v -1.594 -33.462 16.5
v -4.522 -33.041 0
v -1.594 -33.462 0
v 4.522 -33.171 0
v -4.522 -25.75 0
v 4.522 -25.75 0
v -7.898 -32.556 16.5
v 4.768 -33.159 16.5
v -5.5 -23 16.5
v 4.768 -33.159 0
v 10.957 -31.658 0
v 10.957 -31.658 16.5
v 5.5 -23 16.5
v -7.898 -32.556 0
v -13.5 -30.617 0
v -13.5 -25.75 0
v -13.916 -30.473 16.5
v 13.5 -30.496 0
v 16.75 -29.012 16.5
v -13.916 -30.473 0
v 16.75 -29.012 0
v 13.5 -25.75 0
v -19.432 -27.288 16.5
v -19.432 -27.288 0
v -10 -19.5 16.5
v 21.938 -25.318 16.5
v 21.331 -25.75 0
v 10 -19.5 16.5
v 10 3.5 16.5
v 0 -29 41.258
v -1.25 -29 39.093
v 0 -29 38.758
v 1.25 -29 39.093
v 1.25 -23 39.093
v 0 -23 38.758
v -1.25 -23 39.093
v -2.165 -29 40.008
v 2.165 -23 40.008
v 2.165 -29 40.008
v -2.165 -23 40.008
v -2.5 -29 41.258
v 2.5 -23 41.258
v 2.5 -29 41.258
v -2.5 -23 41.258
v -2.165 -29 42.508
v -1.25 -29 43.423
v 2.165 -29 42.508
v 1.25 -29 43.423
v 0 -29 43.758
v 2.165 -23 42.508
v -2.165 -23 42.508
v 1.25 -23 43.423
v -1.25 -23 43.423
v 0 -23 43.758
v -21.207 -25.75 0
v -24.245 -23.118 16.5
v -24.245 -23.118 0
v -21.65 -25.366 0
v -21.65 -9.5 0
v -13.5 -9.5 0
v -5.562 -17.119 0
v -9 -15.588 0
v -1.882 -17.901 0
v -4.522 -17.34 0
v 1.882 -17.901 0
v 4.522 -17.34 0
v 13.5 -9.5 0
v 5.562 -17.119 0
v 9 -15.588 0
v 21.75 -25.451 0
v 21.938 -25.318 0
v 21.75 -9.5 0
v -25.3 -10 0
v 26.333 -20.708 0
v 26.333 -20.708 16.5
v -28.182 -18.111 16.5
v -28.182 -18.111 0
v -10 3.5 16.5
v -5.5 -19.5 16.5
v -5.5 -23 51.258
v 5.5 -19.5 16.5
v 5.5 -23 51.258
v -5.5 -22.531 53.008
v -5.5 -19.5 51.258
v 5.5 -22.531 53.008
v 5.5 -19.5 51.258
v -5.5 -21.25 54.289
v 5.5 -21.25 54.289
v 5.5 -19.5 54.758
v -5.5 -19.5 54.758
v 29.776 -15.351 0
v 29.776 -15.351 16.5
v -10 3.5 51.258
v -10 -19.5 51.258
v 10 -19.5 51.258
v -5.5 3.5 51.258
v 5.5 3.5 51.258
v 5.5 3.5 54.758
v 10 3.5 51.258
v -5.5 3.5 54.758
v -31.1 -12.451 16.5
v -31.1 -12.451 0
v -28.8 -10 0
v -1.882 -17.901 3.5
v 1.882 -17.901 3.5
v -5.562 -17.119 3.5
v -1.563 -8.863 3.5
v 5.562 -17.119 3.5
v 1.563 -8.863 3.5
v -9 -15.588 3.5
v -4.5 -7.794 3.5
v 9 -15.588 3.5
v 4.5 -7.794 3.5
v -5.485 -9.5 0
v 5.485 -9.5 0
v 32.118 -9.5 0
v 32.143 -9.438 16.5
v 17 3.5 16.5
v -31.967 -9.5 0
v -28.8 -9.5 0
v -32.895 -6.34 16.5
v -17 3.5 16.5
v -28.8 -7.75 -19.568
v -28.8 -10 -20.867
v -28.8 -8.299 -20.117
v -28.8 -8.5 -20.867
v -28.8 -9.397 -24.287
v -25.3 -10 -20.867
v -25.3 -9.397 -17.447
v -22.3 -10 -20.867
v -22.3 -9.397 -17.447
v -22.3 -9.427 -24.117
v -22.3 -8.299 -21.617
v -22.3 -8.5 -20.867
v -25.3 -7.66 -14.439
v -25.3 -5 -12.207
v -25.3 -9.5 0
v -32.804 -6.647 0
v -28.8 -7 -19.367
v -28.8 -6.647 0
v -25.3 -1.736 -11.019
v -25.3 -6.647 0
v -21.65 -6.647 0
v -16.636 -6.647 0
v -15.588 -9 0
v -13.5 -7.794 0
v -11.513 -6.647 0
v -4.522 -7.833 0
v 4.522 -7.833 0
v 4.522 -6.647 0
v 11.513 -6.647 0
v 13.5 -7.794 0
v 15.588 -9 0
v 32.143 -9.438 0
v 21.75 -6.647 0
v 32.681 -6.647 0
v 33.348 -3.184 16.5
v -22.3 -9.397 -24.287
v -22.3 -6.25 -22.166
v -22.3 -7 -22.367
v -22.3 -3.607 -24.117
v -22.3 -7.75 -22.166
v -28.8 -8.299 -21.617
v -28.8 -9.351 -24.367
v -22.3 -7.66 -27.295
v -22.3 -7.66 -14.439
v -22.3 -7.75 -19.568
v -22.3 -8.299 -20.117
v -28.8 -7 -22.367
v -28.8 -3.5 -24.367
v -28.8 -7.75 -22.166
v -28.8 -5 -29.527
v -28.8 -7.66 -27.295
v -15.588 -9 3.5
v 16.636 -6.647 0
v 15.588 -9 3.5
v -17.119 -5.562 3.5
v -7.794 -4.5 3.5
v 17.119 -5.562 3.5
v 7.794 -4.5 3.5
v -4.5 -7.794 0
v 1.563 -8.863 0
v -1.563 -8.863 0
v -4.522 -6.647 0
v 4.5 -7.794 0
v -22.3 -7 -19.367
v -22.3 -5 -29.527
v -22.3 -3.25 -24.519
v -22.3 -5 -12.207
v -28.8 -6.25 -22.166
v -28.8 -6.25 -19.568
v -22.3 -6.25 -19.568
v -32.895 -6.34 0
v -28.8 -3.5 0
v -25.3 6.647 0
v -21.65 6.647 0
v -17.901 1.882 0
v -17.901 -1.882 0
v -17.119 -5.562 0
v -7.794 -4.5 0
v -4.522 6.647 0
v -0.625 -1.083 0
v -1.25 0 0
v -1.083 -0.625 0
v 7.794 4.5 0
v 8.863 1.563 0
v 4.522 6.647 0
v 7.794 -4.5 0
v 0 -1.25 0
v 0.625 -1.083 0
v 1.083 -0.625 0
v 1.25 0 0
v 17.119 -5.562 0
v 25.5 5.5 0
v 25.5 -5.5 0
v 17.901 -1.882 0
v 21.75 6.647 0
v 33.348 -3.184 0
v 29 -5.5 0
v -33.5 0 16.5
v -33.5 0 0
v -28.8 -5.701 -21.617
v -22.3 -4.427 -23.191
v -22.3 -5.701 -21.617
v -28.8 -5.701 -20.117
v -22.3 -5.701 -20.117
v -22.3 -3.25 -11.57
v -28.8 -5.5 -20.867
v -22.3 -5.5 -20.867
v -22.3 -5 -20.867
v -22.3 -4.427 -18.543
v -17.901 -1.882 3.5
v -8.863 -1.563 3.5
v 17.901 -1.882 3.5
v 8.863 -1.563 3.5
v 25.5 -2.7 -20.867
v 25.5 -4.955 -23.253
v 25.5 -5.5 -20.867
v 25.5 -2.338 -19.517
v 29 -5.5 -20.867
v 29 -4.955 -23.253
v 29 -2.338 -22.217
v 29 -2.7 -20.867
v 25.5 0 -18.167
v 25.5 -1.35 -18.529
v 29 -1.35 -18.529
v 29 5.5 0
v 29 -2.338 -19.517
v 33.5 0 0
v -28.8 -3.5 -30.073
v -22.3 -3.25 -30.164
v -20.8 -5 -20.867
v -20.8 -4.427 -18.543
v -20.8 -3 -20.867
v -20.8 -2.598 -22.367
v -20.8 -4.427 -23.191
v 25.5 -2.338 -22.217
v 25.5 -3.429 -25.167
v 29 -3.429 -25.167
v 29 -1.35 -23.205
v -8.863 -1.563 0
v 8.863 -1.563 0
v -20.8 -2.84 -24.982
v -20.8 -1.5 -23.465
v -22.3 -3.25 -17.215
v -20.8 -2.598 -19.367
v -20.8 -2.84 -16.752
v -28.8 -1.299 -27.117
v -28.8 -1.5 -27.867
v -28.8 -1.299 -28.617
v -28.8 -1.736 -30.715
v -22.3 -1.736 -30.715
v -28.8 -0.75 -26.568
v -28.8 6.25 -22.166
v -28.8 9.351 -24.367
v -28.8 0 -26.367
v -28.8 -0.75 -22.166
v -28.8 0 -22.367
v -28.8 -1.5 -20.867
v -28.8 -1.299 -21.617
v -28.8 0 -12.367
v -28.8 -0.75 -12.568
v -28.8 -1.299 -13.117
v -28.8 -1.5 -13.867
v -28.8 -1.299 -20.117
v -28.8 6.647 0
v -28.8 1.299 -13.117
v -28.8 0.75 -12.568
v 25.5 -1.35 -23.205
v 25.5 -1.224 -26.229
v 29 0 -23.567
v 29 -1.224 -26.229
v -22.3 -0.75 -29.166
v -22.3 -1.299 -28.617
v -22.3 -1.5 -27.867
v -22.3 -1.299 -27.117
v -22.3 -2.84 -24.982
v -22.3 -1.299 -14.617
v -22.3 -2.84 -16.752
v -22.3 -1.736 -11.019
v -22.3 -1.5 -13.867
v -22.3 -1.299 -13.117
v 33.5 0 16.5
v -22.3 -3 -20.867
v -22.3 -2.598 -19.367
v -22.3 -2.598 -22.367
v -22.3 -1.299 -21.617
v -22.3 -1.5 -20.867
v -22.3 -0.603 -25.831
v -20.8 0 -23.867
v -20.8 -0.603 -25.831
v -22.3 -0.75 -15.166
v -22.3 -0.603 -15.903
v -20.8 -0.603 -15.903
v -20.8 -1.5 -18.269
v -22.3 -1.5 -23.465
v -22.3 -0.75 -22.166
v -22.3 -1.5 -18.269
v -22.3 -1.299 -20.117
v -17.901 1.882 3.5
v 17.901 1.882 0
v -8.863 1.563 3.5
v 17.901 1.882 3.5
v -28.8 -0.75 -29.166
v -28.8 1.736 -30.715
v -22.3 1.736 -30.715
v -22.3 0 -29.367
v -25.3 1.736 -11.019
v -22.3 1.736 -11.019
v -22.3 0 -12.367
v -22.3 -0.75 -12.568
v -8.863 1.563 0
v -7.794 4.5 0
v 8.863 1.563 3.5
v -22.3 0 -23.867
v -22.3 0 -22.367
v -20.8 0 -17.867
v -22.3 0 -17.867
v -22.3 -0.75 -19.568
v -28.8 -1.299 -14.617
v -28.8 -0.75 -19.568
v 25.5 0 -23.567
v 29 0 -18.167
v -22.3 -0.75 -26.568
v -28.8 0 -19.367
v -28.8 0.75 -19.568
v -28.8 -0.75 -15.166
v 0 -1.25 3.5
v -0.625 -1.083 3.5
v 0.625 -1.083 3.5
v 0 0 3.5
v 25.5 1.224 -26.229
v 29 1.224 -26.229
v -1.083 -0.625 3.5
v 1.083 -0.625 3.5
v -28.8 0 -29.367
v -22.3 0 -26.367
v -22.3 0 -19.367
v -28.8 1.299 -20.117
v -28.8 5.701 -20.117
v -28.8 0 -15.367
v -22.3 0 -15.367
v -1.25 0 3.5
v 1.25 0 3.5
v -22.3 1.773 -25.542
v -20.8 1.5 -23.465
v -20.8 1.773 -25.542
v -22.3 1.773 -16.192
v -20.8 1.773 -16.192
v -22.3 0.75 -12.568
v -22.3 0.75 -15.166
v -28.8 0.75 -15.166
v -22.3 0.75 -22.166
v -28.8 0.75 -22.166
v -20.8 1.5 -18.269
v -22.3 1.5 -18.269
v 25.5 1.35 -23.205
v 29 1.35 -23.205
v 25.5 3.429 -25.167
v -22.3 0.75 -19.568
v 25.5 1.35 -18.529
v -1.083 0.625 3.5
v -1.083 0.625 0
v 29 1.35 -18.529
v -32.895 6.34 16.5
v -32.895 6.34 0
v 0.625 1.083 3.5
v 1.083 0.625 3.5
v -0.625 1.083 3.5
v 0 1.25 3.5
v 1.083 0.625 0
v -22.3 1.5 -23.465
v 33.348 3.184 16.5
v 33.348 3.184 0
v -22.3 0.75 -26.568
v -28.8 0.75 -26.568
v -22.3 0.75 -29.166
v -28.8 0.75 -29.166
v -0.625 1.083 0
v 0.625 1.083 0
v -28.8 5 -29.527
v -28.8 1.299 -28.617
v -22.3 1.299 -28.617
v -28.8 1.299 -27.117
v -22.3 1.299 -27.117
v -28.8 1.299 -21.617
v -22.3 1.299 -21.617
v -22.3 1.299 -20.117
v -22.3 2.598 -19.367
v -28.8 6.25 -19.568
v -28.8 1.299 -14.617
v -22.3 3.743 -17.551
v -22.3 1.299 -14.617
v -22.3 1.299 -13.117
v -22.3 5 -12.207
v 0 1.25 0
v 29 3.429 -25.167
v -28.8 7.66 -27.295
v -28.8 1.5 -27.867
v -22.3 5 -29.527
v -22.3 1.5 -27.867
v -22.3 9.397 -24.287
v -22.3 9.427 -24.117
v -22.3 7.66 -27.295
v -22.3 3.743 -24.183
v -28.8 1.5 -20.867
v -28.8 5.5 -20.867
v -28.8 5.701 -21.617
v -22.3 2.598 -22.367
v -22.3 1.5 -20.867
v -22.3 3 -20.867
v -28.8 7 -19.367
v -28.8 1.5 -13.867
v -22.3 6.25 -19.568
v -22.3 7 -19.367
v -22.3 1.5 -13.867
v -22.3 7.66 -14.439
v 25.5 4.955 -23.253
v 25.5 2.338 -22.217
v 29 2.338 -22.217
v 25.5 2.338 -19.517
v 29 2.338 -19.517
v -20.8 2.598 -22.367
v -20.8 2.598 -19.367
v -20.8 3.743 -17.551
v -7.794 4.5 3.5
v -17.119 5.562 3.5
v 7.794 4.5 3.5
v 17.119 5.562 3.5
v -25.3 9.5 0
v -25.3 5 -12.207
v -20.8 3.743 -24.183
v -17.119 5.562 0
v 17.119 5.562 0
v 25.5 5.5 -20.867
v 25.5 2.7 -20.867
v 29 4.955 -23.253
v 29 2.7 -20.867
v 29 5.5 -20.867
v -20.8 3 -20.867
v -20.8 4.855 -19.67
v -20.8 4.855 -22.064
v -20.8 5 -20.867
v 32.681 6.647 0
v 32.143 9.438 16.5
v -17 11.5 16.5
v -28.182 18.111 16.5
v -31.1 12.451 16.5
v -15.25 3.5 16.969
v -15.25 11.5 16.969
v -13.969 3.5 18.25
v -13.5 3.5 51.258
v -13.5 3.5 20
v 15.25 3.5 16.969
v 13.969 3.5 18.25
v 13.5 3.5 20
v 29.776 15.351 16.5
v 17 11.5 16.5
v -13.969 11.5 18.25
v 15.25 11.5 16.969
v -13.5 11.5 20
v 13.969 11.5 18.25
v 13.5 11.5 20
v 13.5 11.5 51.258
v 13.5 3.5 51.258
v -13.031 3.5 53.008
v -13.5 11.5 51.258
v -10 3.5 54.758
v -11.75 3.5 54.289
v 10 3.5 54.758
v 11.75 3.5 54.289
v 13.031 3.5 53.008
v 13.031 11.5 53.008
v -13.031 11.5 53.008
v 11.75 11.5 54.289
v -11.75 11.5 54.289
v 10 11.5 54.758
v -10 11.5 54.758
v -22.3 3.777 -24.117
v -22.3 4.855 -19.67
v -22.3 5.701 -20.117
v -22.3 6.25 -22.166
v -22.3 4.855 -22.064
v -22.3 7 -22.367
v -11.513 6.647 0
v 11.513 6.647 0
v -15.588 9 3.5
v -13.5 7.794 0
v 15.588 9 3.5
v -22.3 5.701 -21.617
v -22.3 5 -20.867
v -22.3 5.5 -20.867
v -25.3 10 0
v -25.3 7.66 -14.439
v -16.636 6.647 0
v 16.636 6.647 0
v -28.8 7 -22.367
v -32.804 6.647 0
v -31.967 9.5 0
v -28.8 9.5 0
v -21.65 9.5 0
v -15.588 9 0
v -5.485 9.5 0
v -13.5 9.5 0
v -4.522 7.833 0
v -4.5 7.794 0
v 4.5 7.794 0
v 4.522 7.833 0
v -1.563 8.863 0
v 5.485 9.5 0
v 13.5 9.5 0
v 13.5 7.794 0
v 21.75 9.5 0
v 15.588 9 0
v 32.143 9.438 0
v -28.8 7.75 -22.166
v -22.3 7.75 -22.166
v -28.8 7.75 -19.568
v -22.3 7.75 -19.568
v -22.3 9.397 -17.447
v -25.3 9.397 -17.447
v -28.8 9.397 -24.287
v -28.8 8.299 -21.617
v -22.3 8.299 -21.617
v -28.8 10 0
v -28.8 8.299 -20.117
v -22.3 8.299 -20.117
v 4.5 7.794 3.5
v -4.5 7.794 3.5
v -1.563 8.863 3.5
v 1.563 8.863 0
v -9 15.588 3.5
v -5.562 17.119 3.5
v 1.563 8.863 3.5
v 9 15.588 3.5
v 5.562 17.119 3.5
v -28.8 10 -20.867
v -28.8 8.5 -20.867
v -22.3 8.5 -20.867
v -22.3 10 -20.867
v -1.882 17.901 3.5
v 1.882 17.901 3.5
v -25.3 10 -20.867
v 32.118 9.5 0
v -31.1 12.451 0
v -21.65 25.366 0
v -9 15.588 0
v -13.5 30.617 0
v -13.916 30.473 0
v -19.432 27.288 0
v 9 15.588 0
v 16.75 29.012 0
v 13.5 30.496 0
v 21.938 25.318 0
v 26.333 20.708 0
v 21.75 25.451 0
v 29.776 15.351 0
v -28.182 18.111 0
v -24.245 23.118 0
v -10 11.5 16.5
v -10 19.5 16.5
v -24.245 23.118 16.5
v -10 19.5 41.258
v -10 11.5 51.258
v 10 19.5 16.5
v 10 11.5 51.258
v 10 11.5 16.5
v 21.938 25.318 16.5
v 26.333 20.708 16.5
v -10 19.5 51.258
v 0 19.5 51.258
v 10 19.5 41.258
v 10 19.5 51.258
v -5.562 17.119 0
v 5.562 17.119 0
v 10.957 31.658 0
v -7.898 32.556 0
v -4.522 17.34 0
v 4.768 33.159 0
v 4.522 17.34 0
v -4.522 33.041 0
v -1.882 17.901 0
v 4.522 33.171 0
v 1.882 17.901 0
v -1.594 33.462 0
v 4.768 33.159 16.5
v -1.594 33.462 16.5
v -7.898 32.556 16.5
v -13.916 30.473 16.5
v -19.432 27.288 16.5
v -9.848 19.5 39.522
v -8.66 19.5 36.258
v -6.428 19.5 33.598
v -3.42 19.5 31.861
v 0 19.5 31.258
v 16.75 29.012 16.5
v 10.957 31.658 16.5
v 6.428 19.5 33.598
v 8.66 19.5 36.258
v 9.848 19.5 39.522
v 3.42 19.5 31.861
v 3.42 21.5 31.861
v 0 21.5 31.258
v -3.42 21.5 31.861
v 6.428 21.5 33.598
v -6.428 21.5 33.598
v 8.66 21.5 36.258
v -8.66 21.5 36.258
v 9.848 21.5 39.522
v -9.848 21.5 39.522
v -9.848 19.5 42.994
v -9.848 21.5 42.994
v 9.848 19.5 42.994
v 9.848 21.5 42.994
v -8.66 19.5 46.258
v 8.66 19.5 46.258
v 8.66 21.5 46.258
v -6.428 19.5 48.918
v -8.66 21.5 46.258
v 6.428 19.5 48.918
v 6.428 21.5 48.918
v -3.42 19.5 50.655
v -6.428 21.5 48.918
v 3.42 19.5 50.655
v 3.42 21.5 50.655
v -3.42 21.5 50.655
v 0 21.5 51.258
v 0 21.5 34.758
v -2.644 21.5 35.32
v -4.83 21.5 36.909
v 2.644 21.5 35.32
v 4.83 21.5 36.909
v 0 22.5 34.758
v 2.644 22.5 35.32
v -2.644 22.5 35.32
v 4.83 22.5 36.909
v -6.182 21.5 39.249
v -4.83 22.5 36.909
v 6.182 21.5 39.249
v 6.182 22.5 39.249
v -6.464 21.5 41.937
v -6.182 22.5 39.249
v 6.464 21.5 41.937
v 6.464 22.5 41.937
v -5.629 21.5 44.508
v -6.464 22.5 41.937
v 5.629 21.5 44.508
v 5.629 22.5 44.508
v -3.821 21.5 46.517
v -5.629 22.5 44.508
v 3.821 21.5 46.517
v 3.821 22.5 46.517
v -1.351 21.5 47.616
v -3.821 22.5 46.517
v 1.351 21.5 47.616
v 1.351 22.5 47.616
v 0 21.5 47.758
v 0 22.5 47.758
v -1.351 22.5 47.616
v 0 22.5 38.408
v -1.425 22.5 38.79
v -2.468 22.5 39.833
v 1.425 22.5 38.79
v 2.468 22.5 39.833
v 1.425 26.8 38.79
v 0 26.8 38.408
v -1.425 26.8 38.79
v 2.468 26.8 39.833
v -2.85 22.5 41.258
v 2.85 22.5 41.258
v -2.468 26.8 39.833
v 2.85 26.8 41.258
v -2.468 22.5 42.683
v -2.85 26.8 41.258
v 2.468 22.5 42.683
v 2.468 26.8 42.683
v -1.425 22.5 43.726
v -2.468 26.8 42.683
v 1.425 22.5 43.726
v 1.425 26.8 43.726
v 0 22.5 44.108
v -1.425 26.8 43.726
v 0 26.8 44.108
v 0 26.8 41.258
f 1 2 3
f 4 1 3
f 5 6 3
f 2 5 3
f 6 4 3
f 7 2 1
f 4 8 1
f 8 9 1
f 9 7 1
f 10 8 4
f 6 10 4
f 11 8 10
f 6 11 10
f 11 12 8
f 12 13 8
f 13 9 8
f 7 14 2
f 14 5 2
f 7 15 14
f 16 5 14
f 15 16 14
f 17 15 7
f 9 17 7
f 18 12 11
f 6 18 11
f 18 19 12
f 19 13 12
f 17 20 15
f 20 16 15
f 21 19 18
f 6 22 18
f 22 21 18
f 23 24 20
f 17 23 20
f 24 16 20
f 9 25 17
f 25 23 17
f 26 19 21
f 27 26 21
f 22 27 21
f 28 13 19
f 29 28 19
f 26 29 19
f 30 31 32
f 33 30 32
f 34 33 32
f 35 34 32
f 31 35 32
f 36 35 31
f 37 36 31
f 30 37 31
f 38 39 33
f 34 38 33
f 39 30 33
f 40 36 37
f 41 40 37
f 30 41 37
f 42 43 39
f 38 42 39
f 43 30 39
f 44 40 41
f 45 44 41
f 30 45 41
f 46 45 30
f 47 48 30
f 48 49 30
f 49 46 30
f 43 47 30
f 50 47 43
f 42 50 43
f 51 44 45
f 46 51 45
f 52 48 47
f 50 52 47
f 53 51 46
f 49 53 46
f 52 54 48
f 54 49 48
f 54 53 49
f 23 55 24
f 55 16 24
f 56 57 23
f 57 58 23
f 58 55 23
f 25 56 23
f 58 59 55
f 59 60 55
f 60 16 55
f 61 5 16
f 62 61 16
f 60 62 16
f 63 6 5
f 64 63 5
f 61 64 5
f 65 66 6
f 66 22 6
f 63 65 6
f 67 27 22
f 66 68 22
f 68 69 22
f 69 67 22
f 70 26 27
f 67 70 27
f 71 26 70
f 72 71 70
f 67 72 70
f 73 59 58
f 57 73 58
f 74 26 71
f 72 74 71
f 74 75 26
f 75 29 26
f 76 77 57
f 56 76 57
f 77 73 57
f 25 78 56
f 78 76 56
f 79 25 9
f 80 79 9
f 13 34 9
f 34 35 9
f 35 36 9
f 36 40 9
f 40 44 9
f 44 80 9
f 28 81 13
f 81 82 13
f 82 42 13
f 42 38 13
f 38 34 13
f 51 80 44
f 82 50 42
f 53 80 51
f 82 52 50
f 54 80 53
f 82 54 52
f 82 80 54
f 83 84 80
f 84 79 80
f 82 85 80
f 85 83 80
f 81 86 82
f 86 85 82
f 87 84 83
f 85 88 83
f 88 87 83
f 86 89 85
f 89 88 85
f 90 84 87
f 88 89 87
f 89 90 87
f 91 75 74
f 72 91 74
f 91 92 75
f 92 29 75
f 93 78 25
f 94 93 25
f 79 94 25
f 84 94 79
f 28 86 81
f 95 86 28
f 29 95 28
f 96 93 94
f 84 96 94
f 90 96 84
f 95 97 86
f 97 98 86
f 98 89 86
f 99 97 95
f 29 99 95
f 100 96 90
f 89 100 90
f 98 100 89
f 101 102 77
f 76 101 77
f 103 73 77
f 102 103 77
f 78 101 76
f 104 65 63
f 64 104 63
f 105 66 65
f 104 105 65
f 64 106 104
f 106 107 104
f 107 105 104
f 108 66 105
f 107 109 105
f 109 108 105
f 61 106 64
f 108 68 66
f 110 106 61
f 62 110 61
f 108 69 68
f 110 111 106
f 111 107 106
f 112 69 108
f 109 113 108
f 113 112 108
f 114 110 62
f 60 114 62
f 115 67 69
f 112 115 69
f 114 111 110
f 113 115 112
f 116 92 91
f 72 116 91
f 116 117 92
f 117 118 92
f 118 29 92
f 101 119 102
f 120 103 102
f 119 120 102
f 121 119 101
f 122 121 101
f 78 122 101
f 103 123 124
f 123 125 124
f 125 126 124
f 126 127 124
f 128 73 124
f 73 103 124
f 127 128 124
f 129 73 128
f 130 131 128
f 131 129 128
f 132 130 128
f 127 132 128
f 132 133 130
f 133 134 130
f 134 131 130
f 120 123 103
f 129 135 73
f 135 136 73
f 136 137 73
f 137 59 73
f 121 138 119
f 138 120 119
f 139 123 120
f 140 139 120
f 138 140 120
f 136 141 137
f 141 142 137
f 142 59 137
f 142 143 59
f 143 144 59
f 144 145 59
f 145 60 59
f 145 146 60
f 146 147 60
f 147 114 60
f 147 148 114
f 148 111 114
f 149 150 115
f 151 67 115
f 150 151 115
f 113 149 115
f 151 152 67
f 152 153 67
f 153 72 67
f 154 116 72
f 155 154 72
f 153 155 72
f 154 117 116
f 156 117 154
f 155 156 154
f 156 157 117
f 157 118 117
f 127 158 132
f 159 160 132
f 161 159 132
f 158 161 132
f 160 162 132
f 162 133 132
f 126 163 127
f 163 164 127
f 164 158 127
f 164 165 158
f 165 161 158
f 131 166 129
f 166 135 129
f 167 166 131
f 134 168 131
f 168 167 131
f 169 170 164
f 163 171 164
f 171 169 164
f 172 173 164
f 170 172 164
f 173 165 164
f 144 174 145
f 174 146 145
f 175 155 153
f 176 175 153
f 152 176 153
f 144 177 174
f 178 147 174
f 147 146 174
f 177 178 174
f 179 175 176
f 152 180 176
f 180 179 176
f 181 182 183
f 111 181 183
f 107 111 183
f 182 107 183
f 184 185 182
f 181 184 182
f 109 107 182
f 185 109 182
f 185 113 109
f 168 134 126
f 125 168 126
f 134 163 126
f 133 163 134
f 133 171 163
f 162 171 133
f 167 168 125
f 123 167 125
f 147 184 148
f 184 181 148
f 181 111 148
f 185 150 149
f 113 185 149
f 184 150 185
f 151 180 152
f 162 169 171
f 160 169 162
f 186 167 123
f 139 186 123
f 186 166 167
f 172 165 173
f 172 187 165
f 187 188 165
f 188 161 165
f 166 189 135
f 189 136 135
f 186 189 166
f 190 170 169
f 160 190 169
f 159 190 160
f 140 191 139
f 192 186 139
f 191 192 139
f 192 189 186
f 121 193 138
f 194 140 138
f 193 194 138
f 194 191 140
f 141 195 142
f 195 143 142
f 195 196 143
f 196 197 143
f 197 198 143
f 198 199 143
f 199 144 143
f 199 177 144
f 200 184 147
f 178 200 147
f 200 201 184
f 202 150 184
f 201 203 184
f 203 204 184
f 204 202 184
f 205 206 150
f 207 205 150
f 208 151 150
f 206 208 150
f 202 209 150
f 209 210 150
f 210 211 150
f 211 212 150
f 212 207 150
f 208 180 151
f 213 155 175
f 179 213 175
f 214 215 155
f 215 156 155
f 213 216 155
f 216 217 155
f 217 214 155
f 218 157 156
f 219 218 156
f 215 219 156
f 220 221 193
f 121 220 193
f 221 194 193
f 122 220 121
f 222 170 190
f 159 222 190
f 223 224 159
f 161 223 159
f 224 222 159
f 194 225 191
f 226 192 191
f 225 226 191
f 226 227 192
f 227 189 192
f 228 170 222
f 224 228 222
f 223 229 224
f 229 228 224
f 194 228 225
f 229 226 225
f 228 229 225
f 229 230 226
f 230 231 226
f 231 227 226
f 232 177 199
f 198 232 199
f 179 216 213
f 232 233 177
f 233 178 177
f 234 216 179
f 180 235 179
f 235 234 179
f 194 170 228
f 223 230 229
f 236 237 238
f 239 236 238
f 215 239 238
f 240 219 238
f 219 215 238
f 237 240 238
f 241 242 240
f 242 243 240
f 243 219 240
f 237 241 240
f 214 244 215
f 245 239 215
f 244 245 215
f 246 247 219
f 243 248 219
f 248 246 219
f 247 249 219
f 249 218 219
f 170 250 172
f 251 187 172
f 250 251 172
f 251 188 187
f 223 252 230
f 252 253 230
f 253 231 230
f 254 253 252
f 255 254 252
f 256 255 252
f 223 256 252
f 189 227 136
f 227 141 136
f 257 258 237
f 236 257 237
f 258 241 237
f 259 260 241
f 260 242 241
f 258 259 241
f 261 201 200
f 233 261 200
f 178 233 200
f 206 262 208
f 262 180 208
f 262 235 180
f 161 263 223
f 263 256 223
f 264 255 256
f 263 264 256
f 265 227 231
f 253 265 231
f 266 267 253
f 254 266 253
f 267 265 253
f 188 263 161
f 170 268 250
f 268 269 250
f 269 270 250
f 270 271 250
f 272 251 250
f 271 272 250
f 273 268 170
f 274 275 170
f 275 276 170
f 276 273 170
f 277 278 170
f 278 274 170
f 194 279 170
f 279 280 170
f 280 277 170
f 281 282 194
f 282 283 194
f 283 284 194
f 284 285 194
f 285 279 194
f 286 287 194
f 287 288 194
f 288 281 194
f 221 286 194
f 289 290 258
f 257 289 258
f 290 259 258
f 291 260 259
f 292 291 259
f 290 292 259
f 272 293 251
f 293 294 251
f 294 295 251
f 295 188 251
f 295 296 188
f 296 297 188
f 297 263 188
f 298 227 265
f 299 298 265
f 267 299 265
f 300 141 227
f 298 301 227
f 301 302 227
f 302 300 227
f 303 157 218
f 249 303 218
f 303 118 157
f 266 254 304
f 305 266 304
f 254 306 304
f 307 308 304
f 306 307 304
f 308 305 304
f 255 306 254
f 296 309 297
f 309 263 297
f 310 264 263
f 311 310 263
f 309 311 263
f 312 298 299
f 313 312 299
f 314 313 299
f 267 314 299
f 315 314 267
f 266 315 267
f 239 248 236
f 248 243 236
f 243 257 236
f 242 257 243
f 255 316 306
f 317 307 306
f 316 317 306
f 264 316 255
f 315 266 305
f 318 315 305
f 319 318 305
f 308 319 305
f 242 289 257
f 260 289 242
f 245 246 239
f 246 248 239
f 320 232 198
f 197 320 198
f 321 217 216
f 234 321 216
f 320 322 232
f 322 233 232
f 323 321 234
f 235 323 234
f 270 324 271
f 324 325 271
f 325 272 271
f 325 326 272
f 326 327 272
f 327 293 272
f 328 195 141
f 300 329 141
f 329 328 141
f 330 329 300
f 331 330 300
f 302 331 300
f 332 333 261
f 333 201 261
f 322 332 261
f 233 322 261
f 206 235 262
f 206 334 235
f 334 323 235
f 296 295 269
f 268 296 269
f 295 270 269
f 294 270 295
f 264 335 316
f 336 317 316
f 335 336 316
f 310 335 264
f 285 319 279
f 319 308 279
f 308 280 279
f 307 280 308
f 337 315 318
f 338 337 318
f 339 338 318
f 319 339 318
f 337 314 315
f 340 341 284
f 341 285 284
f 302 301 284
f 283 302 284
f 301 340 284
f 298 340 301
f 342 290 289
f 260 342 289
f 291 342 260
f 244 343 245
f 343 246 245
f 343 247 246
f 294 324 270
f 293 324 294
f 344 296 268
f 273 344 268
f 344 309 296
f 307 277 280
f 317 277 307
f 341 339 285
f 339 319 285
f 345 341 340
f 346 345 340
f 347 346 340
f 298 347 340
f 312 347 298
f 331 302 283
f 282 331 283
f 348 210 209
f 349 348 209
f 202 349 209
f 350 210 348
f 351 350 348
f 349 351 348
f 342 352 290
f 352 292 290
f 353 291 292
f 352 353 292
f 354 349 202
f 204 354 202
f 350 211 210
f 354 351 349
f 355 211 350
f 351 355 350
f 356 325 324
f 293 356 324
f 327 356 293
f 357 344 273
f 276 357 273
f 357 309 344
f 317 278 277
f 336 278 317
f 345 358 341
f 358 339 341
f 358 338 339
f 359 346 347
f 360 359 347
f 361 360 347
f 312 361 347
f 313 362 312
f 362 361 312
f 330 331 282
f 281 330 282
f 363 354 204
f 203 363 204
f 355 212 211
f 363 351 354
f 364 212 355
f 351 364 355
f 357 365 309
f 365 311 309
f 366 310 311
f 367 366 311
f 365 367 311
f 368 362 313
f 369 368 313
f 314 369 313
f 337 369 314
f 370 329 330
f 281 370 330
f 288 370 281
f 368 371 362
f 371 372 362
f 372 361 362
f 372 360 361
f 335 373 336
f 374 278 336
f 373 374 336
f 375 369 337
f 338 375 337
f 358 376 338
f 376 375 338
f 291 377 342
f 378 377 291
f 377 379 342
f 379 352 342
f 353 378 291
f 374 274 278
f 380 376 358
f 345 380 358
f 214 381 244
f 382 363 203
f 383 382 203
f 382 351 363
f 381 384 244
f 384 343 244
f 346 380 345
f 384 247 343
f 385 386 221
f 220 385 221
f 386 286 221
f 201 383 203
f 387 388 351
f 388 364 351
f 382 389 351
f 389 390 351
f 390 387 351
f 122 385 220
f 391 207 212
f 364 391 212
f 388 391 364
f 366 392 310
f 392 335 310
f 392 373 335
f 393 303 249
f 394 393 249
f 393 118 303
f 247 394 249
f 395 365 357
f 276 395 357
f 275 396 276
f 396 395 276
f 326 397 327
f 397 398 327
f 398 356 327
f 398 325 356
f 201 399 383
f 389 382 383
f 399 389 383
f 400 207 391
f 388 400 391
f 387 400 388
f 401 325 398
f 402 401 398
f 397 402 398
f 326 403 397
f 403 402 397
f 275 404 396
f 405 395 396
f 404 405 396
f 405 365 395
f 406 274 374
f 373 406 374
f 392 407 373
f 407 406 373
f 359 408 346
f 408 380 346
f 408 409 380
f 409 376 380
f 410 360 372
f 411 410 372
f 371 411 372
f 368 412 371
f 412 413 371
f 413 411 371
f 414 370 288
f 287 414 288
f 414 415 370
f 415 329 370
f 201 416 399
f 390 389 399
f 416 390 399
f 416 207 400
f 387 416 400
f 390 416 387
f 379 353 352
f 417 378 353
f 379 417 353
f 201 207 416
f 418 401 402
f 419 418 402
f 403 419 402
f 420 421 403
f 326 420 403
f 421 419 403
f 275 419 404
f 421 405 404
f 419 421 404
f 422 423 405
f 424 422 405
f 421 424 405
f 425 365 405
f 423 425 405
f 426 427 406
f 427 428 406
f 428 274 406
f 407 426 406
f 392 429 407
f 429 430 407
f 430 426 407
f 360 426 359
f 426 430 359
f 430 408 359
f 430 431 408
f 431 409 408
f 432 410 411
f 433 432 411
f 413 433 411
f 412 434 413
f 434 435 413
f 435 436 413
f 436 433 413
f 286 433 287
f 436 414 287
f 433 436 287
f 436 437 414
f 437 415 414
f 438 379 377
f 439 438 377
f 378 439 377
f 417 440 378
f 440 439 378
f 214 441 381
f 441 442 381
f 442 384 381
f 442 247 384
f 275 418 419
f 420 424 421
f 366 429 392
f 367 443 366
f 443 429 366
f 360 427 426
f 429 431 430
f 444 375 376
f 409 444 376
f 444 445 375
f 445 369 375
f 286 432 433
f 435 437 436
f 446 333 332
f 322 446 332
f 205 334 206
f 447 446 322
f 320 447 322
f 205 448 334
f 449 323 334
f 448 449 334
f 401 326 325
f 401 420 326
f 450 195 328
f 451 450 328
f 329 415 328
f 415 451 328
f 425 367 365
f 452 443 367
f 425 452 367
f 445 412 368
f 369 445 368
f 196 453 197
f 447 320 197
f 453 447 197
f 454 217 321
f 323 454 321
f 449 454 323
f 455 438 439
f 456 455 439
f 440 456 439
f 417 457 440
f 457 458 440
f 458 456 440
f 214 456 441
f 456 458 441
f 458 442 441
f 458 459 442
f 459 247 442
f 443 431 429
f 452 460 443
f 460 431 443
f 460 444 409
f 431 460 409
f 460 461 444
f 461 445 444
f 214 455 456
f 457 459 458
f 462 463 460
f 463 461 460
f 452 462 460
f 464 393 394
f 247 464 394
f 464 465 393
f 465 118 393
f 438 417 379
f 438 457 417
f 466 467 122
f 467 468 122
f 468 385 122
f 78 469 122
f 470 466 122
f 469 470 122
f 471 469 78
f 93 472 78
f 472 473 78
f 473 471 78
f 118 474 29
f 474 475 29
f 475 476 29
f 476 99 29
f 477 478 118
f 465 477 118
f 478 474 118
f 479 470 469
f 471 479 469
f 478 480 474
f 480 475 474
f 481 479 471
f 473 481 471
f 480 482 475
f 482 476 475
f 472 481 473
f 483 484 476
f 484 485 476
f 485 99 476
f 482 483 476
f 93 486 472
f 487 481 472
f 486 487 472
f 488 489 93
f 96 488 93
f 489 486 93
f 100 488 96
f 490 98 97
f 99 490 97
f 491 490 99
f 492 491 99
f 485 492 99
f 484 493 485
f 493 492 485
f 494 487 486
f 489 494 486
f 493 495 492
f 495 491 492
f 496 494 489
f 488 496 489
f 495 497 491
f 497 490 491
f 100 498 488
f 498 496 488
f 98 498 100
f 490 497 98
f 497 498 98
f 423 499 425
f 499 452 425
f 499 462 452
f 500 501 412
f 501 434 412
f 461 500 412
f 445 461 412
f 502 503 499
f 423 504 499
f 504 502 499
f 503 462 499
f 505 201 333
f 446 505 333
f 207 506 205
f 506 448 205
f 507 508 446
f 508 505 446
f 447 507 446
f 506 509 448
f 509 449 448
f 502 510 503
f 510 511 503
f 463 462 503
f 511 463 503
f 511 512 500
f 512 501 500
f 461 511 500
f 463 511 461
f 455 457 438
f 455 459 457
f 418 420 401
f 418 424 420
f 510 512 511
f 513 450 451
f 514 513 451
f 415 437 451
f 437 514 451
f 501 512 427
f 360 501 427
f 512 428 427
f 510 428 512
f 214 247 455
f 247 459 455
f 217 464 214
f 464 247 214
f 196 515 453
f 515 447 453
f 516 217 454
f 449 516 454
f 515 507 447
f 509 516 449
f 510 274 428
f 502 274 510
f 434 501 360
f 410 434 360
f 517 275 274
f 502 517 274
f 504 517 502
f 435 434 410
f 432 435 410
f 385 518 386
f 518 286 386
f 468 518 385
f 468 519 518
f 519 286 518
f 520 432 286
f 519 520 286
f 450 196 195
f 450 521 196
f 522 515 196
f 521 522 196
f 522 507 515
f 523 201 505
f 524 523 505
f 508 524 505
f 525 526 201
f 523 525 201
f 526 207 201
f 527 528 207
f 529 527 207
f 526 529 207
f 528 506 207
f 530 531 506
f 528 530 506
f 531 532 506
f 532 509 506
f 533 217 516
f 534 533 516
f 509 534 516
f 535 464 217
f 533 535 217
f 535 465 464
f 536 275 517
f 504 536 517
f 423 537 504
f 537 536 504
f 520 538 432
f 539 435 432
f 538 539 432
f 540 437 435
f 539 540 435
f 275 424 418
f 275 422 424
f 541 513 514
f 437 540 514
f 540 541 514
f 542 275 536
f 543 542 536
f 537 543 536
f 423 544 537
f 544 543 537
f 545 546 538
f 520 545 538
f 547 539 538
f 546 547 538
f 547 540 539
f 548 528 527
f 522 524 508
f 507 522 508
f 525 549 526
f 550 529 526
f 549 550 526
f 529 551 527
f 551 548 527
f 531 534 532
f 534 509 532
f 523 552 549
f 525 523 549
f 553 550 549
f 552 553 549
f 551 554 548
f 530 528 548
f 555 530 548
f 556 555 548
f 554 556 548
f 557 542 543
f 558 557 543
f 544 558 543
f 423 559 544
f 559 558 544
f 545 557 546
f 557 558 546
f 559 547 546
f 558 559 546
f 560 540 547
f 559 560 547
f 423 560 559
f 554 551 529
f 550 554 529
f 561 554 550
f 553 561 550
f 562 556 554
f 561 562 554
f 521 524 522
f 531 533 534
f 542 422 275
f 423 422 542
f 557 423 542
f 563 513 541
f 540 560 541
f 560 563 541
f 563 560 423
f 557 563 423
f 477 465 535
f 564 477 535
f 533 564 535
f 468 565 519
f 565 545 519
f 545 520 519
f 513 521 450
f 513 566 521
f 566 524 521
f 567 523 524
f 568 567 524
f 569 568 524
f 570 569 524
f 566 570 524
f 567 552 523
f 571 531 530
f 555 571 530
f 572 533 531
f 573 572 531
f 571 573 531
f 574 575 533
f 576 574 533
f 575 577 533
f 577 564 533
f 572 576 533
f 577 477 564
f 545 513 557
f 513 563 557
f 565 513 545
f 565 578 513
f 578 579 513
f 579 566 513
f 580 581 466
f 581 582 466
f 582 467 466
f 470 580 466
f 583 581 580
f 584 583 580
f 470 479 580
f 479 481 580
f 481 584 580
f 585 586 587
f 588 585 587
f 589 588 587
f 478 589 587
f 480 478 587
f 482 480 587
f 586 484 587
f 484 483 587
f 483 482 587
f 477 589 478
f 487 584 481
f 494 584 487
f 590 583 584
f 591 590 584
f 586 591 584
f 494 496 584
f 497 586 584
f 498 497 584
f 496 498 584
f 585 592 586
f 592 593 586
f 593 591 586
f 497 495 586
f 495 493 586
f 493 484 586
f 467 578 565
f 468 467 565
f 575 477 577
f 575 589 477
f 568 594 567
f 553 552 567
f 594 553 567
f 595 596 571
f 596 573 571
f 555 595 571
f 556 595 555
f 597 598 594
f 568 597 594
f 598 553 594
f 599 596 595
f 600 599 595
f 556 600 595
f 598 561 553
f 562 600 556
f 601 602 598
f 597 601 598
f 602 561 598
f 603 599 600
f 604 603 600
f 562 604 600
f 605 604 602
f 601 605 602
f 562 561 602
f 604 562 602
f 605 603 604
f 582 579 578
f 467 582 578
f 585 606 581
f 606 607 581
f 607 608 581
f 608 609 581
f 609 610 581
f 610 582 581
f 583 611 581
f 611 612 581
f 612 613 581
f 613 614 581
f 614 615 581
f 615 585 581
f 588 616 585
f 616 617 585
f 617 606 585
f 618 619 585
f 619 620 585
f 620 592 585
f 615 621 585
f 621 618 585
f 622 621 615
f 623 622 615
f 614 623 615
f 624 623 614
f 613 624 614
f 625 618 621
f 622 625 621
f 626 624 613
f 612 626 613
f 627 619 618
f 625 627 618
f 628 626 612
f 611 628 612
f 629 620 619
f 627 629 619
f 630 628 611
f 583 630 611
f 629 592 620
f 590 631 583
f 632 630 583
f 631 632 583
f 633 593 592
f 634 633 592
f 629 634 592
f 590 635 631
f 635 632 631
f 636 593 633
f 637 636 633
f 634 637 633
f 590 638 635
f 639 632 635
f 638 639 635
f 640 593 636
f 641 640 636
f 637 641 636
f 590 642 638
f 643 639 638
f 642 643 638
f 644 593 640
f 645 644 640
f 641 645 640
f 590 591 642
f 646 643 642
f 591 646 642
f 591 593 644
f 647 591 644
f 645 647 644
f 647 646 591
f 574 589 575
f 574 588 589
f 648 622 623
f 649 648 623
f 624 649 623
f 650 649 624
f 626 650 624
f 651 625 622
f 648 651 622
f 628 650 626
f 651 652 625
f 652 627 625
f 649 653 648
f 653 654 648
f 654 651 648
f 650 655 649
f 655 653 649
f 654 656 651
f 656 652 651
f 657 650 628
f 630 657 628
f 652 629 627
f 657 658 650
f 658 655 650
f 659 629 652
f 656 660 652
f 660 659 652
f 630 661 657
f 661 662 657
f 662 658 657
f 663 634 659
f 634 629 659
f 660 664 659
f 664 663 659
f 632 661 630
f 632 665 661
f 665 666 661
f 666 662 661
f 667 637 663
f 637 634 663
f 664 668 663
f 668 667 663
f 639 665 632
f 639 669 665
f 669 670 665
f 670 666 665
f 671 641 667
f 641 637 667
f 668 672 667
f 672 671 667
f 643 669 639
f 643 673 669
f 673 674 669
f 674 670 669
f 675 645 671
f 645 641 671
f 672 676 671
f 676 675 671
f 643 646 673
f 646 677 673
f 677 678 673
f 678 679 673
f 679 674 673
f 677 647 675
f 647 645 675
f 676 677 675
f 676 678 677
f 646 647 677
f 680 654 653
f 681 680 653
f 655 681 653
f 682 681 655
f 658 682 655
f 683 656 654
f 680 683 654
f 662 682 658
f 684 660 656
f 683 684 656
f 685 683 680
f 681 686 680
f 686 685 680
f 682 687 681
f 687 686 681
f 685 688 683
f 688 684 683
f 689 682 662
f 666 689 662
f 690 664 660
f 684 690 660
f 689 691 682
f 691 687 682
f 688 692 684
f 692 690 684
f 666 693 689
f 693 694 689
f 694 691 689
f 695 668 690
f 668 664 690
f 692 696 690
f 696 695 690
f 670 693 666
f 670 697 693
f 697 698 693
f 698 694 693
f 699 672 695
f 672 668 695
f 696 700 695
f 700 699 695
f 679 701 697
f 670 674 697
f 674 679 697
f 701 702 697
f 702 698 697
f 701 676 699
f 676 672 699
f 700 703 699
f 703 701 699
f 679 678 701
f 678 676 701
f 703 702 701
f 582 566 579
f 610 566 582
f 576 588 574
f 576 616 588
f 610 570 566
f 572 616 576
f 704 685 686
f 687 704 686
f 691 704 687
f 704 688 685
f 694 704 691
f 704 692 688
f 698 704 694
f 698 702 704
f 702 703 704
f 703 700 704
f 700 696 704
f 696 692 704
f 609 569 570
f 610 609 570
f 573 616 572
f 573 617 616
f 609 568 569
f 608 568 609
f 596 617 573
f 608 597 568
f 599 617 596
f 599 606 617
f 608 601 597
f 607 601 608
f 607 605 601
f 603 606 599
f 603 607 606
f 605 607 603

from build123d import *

# Parameters (mm, degrees)
SKETCH1_R            = 33.5
BOSS_EXTRUDE3_DEPTH  = 16.5
SKETCH2_W            = 20
SKETCH2_H            = 39
BOSS_EXTRUDE4_DEPTH  = 34.758
SKETCH3_R            = 10
SKETCH3_R_2          = 6.5
BOSS_EXTRUDE5_DEPTH  = 2
SKETCH3_3_R          = 6.5
BOSS_EXTRUDE6_DEPTH  = 3
SKETCH3_4_R          = 2.85
BOSS_EXTRUDE7_DEPTH  = 7.3
SKETCH5_W            = 11
SKETCH5_H            = 3.5
SKETCH5_W_2          = 3.5
SKETCH5_H_2          = 8
BOSS_EXTRUDE8_DEPTH  = 34.758
SKETCH6_W            = 11
SKETCH6_H            = 8
BOSS_EXTRUDE9_DEPTH  = 3.5
SKETCH7_R            = 2.5
BOSS_EXTRUDE10_DEPTH = 6
FILLET1_R            = 3.5
FILLET2_R            = 3.5
FILLET3_R            = 3.5
FILLET4_R            = 3.5
SKETCH9_W            = 3.5
SKETCH9_H            = 20
BOSS_EXTRUDE11_DEPTH = 30.867
SKETCH9_3_W          = 3.5
SKETCH9_3_H          = 11
BOSS_EXTRUDE12_DEPTH = 27
CUT_EXTRUDE1_DEPTH   = 88.052447203
BOSS_EXTRUDE13_START = 3
SKETCH10_3_R         = 10
BOSS_EXTRUDE13_DEPTH = 3
SKETCH10_4_R         = 5
SKETCH10_4_R_2       = 3
BOSS_EXTRUDE14_DEPTH = 4.5
CUT_EXTRUDE4_START   = -18.5
SKETCH10_7_R         = 1.5
CUT_EXTRUDE4_DEPTH   = 34.5
CIRPATTERN3_COUNT    = 4
SKETCH11_R           = 1.5
CUT_EXTRUDE6_DEPTH   = 86.054856205
SKETCH13_R           = 2.7
CUT_EXTRUDE10_DEPTH  = 15.5
CUT_EXTRUDE11_DEPTH  = 3.5
CIRPATTERN4_COUNT    = 4
SKETCH14_3_R         = 1.25
CUT_EXTRUDE12_DEPTH  = 3.5


with BuildPart() as part:
    # Sketch1 → Boss-Extrude3 (new body)
    with BuildSketch(Plane.XY):
        Circle(SKETCH1_R)
    extrude(amount=BOSS_EXTRUDE3_DEPTH)

    # Sketch2 → Boss-Extrude4 (add)
    with BuildSketch(Plane.XY.offset(16.5)):
        Rectangle(SKETCH2_W, SKETCH2_H)
    extrude(amount=BOSS_EXTRUDE4_DEPTH)

    # Sketch3 → Boss-Extrude5 (add)
    with BuildSketch(Plane(origin=(0, 19.5, 0), x_dir=(1, 0, 0), z_dir=(0, 1, 0))):
        with Locations(Location((0, -41.258, 0), (0, 0, 270))):
            Circle(SKETCH3_R)
        with Locations(Location((0, -41.258, 0), (0, 0, 270))):
            Circle(SKETCH3_R_2, mode=Mode.SUBTRACT)
    extrude(amount=BOSS_EXTRUDE5_DEPTH)

    # Sketch3<3> → Boss-Extrude6 (add)
    with BuildSketch(Plane(origin=(0, 19.5, 0), x_dir=(1, 0, 0), z_dir=(0, 1, 0))):
        with Locations(Location((0, -41.258, 0), (0, 0, 270))):
            Circle(SKETCH3_3_R)
    extrude(amount=BOSS_EXTRUDE6_DEPTH)

    # Sketch3<4> → Boss-Extrude7 (add)
    with BuildSketch(Plane(origin=(0, 19.5, 0), x_dir=(1, 0, 0), z_dir=(0, 1, 0))):
        with Locations(Location((0, -41.258, 0), (0, 0, 270))):
            Circle(SKETCH3_4_R)
    extrude(amount=BOSS_EXTRUDE7_DEPTH)

    # Sketch5 → Boss-Extrude8 (add)
    with BuildSketch(Plane.XY.offset(51.258)):
        with Locations((0, -21.25)):
            Rectangle(SKETCH5_W, SKETCH5_H)
        with Locations((11.75, 7.5)):
            Rectangle(SKETCH5_W_2, SKETCH5_H_2)
        with Locations((-11.75, 7.5)):
            Rectangle(SKETCH5_W_2, SKETCH5_H_2)
    extrude(amount=-BOSS_EXTRUDE8_DEPTH)

    # Sketch6 → Boss-Extrude9 (add)
    with BuildSketch(Plane.XY.offset(51.258)):
        with Locations((0, 7.5)):
            Rectangle(SKETCH6_W, SKETCH6_H)
        Polygon((10, 11.5), (5.5, 11.5), (5.5, 3.5), (10, 3.5), (13.5, 3.5), (13.5, 11.5), align=None)
        Polygon((5.5, 3.5), (-5.5, 3.5), (-5.5, -19.5), (-5.5, -23), (5.5, -23), (5.5, -19.5), align=None)
        Polygon((-10, 11.5), (-13.5, 11.5), (-13.5, 3.5), (-10, 3.5), (-5.5, 3.5), (-5.5, 11.5), align=None)
    extrude(amount=BOSS_EXTRUDE9_DEPTH)

    # Sketch7 → Boss-Extrude10 (add)
    with BuildSketch(Plane.XZ.offset(23)):
        with Locations(Location((0, 41.258, 0), (0, 0, 270))):
            Circle(SKETCH7_R)
    extrude(amount=BOSS_EXTRUDE10_DEPTH)

    # Fillet1
    fillet1_edges = [part.edges().sort_by_distance(p)[0] for p in [
        (-13.5, 7.5, 54.758),
        (13.5, 7.5, 54.758),
    ]]
    fillet(fillet1_edges, radius=FILLET1_R)

    # Fillet2
    fillet2_edges = [part.edges().sort_by_distance(p)[0] for p in [
        (0, -23, 54.758),
    ]]
    fillet(fillet2_edges, radius=FILLET2_R)

    # Fillet3
    fillet3_edges = [part.edges().sort_by_distance(p)[0] for p in [
        (13.5, 7.5, 16.5),
    ]]
    fillet(fillet3_edges, radius=FILLET3_R)

    # Fillet4
    fillet4_edges = [part.edges().sort_by_distance(p)[0] for p in [
        (-13.5, 7.5, 16.5),
    ]]
    fillet(fillet4_edges, radius=FILLET4_R)

    # Sketch9 → Boss-Extrude11 (add)
    with BuildSketch(Plane(origin=(0, 0, 0), x_dir=(-1, 0, 0), z_dir=(0, 0, -1))):
        with Locations((27.05, 0)):
            Rectangle(SKETCH9_W, SKETCH9_H)
    extrude(amount=BOSS_EXTRUDE11_DEPTH)

    # Sketch9<3> → Boss-Extrude12 (add)
    with BuildSketch(Plane(origin=(0, 0, 0), x_dir=(-1, 0, 0), z_dir=(0, 0, -1))):
        with Locations((-27.25, 0)):
            Rectangle(SKETCH9_3_W, SKETCH9_3_H)
    extrude(amount=BOSS_EXTRUDE12_DEPTH)

    # Sketch10 → Cut-Extrude1 (cut, through all)
    with BuildSketch(Plane(origin=(-25.3, 0, 0), x_dir=(0, 0, -1), z_dir=(1, 0, 0))):
        with BuildLine():
            ThreePointArc((20.867, 10), (27.938067812, 7.071067812), (30.867, 0))
            Line((30.867, 0), (30.867, 10))
            Line((30.867, 10), (20.867, 10))
        make_face()
        with BuildLine():
            Line((30.867, -10), (30.867, 0))
            ThreePointArc((30.867, 0), (27.938067812, -7.071067812), (20.867, -10))
            Line((20.867, -10), (30.867, -10))
        make_face()
    extrude(amount=-CUT_EXTRUDE1_DEPTH, mode=Mode.SUBTRACT)

    # Sketch10<3> → Boss-Extrude13 (add)
    with BuildSketch(Plane(origin=(-25.3, 0, 0), x_dir=(0, 0, -1), z_dir=(1, 0, 0)).offset(BOSS_EXTRUDE13_START)):
        with Locations(Location((20.867, 0, 0), (0, 0, 90))):
            Circle(SKETCH10_3_R)
    extrude(amount=-BOSS_EXTRUDE13_DEPTH)

    # Sketch10<4> → Boss-Extrude14 (add)
    with BuildSketch(Plane(origin=(-25.3, 0, 0), x_dir=(0, 0, -1), z_dir=(1, 0, 0))):
        with Locations(Location((20.867, 0, 0), (0, 0, 90))):
            Circle(SKETCH10_4_R)
        with Locations(Location((20.867, 0, 0), (0, 0, 90))):
            Circle(SKETCH10_4_R_2, mode=Mode.SUBTRACT)
    extrude(amount=BOSS_EXTRUDE14_DEPTH)

    # Sketch10<7> → Cut-Extrude4 (cut)
    with BuildSketch(Plane(origin=(-25.3, 0, 0), x_dir=(0, 0, -1), z_dir=(1, 0, 0)).offset(CUT_EXTRUDE4_START)):
        with Locations(Location((20.867, -7, 0), (0, 0, 180))):
            Circle(SKETCH10_7_R)
    cut_extrude4 = extrude(amount=CUT_EXTRUDE4_DEPTH, mode=Mode.SUBTRACT)

    # CirPattern3: Cut-Extrude4 ×4 about axis
    cirpattern3_axis = Axis((0, 0, -20.867), (1, 0, 0))
    for i in range(1, CIRPATTERN3_COUNT):
        add(cut_extrude4.rotate(cirpattern3_axis, i * 360 / CIRPATTERN3_COUNT), mode=Mode.SUBTRACT)

    # Sketch11 → Cut-Extrude6 (cut, through all)
    with BuildSketch(Plane(origin=(-22.3, 0, 0), x_dir=(0, 0, -1), z_dir=(1, 0, 0))):
        with Locations(Location((20.867, 0, 0), (0, 0, 90))):
            Circle(SKETCH11_R)
    extrude(amount=-CUT_EXTRUDE6_DEPTH, mode=Mode.SUBTRACT)

    # Sketch13 → Cut-Extrude10 (cut)
    with BuildSketch(Plane(origin=(29, 0, 0), x_dir=(0, 0, -1), z_dir=(1, 0, 0))):
        with BuildLine():
            ThreePointArc((20.867, 5.5), (24.756087297, 3.889087297), (26.367, 0))
            ThreePointArc((26.367, 0), (24.756087297, -3.889087297), (20.867, -5.5))
            Line((20.867, -5.5), (27, -5.5))
            Line((27, -5.5), (27, 5.5))
            Line((27, 5.5), (20.867, 5.5))
        make_face()
        with Locations((20.867, 0)):
            Circle(SKETCH13_R)
    extrude(amount=-CUT_EXTRUDE10_DEPTH, mode=Mode.SUBTRACT)

    # Sketch14 → Cut-Extrude11 (cut)
    with BuildSketch(Plane(origin=(0, 0, 0), x_dir=(-1, 0, 0), z_dir=(0, 0, -1))):
        with BuildLine():
            Line((0, 18), (0, 9))
            ThreePointArc((0, 9), (2.329371406, 8.693332437), (4.5, 7.794228634))
            Line((4.5, 7.794228634), (9, 15.588457268))
            ThreePointArc((9, 15.588457268), (4.658742812, 17.386664873), (0, 18))
        make_face()
        with BuildLine():
            ThreePointArc((-4.5, 7.794228634), (-2.329371406, 8.693332437), (0, 9))
            Line((0, 9), (0, 18))
            ThreePointArc((0, 18), (-4.658742812, 17.386664873), (-9, 15.588457268))
            Line((-9, 15.588457268), (-4.5, 7.794228634))
        make_face()
    cut_extrude11 = extrude(amount=-CUT_EXTRUDE11_DEPTH, mode=Mode.SUBTRACT)

    # CirPattern4: Cut-Extrude11 ×4 about axis
    cirpattern4_axis = Axis((0, 0, 0), (0, 0, 1))
    for i in range(1, CIRPATTERN4_COUNT):
        add(cut_extrude11.rotate(cirpattern4_axis, i * 360 / CIRPATTERN4_COUNT), mode=Mode.SUBTRACT)

    # Sketch14<3> → Cut-Extrude12 (cut)
    with BuildSketch(Plane(origin=(0, 0, 0), x_dir=(-1, 0, 0), z_dir=(0, 0, -1))):
        Circle(SKETCH14_3_R)
    extrude(amount=-CUT_EXTRUDE12_DEPTH, mode=Mode.SUBTRACT)


solid = part.part
